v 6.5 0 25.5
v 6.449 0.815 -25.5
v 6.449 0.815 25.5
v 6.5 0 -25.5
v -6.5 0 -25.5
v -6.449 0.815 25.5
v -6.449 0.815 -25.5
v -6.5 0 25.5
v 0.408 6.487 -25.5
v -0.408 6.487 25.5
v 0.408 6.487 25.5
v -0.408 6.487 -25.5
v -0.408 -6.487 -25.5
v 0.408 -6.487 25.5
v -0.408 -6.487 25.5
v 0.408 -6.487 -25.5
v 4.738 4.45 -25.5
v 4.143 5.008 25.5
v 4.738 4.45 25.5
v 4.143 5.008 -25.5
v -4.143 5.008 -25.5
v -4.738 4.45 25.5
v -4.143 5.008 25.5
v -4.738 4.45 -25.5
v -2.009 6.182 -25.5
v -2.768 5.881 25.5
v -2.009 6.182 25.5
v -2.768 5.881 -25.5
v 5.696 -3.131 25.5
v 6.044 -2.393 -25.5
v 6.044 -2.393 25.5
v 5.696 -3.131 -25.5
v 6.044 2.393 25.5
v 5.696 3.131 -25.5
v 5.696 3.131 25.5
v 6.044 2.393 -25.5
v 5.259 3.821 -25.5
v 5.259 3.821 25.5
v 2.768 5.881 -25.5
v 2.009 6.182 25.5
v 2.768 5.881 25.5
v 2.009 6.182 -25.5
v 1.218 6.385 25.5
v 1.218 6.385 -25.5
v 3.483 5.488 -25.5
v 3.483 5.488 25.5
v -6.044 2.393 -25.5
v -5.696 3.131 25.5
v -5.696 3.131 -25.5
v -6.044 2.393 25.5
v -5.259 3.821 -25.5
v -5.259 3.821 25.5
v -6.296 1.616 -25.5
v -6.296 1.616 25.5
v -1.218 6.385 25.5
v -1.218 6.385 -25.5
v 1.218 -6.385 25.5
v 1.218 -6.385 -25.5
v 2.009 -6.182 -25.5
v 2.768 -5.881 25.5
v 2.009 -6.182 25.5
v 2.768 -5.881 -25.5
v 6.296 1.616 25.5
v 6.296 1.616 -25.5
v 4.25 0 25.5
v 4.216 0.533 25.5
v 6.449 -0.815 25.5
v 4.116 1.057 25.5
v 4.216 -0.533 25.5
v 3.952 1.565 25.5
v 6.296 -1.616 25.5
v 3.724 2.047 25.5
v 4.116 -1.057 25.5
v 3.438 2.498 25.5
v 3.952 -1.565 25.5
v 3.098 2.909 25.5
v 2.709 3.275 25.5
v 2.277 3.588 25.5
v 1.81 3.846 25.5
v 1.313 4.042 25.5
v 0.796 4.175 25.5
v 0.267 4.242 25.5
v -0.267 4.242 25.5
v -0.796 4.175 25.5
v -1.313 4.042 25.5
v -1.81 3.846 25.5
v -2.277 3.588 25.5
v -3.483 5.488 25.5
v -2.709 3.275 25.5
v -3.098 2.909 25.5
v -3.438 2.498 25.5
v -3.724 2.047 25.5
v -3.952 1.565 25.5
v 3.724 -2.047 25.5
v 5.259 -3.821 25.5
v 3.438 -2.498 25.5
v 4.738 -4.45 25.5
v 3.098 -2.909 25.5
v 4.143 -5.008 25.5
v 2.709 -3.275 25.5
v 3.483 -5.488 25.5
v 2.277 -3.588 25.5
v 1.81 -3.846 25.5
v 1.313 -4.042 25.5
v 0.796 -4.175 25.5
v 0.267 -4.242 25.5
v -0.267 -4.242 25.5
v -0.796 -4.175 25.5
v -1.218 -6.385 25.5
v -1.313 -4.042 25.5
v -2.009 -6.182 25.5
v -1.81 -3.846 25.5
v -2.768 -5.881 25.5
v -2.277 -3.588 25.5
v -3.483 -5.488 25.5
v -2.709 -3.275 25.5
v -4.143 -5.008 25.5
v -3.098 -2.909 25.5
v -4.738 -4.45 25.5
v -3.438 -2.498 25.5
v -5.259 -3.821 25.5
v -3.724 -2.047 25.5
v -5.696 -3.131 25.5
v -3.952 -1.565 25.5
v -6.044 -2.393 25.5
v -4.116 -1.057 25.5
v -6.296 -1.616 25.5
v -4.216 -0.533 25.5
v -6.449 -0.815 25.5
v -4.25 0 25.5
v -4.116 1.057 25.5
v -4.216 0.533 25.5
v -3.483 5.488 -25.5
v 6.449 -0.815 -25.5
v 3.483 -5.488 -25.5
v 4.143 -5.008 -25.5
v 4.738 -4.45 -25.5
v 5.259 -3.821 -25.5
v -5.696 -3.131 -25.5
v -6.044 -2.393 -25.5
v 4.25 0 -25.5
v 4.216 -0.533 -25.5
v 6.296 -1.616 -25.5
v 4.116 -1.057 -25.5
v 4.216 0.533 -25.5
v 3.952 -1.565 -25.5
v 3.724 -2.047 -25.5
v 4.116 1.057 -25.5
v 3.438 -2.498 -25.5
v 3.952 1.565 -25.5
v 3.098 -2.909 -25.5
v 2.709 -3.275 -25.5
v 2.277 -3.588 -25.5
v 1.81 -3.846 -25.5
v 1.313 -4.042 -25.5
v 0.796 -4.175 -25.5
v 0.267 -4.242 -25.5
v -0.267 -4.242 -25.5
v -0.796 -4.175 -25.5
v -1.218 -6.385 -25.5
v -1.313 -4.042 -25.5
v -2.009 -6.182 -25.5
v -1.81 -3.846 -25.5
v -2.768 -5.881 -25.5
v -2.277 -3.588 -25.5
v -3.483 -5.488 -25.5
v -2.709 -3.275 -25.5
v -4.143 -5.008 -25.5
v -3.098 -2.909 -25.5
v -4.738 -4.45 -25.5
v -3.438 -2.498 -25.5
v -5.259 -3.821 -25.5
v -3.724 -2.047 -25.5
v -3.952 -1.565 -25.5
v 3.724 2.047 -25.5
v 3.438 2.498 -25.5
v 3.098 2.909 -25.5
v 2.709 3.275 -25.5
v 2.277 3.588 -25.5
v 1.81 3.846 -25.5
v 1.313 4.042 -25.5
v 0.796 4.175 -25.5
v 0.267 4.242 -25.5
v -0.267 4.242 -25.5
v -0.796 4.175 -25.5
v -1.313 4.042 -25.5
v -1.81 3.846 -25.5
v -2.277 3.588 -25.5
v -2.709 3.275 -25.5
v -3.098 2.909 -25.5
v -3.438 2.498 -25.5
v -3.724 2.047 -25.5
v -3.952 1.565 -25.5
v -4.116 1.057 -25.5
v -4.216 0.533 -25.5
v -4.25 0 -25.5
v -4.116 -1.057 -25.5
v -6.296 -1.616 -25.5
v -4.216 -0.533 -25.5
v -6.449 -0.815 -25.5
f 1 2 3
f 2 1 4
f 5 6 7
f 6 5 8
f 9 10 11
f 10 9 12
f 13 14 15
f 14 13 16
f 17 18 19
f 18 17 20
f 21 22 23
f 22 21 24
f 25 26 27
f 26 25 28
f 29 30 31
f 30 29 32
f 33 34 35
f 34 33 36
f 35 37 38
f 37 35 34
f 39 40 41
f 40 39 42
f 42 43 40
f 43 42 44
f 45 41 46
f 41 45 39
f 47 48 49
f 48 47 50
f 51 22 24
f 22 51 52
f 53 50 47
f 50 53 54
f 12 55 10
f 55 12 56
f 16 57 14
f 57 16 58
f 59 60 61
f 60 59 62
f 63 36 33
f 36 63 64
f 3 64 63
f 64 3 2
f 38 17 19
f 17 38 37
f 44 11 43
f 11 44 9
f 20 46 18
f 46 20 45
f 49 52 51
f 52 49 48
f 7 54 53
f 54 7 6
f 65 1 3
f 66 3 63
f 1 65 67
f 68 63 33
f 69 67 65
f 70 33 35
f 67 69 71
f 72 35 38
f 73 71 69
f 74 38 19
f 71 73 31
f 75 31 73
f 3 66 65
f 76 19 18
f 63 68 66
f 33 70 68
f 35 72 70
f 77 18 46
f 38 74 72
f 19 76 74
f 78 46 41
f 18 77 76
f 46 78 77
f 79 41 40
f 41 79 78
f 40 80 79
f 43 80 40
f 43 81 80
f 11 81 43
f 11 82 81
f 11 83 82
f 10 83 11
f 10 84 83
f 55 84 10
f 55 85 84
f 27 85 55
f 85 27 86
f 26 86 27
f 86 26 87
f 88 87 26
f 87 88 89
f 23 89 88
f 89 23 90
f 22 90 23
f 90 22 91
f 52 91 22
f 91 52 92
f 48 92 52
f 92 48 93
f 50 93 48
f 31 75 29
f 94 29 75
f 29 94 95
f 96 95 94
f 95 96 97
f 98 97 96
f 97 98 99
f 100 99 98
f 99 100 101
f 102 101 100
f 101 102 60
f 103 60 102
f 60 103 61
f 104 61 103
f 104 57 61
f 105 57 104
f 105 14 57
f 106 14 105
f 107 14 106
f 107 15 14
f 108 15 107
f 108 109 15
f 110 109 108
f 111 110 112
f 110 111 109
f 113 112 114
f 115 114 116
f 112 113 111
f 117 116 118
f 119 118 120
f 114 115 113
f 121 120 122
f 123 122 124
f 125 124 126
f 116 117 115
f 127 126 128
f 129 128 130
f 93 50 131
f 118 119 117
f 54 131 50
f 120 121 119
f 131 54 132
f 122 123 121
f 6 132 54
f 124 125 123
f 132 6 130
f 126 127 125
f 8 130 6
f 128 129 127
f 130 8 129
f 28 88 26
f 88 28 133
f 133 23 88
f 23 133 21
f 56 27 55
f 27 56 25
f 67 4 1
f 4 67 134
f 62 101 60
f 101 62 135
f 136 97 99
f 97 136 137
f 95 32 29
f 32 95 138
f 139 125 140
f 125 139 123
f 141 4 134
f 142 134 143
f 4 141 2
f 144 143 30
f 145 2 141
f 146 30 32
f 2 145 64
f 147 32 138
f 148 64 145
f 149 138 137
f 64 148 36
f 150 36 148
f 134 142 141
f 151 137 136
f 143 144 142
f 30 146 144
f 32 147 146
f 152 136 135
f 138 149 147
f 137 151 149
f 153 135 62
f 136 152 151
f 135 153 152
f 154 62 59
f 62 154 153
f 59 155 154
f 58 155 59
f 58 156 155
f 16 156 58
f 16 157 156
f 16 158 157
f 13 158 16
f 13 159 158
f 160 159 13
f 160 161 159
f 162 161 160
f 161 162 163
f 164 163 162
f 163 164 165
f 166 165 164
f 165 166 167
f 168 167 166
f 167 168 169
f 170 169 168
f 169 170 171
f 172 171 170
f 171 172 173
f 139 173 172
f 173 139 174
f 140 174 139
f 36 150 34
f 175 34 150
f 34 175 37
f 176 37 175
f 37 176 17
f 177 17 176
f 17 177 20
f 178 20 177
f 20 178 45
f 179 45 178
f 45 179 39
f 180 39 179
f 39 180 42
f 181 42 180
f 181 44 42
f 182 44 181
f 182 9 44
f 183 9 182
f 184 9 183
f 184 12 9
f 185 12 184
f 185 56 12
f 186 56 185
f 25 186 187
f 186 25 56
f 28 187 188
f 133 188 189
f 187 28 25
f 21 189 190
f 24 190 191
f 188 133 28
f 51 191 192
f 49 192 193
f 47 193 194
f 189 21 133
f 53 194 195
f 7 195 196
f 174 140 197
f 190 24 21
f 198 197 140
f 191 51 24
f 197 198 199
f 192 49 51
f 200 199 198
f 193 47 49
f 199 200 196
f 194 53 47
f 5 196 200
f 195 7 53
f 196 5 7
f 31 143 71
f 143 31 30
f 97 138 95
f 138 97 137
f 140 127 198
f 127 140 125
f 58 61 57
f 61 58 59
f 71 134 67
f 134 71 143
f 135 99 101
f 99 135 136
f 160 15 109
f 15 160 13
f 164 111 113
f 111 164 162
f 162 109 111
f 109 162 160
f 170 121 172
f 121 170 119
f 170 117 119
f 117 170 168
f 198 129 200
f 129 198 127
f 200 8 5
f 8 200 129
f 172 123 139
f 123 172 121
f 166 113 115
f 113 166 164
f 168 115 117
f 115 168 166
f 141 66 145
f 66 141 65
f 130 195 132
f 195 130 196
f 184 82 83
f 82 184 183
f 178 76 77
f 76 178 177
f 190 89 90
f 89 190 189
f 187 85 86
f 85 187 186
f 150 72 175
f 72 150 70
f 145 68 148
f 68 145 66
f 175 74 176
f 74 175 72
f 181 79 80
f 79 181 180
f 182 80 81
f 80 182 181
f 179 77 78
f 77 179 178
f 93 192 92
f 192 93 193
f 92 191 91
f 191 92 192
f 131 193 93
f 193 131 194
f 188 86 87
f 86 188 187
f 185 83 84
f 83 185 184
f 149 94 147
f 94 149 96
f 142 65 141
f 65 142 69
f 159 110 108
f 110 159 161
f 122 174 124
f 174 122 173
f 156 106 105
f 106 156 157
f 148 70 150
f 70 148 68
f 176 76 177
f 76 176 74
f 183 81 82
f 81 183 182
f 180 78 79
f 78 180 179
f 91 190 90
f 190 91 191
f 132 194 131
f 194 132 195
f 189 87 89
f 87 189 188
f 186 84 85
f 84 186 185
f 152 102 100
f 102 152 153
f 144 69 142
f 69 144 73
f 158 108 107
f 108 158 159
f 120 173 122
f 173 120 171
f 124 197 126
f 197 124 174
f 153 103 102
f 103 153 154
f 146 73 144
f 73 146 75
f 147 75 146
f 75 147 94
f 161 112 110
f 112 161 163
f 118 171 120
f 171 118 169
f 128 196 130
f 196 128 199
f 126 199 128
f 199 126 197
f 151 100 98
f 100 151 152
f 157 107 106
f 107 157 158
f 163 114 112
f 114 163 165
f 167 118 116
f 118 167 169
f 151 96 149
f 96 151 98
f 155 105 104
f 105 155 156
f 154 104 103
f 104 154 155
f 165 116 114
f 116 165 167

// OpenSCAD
$fn = 50;


difference() {
	union() {
		translate(v = [0, 0, -25.5000000000]) {
			cylinder(h = 51, r = 6.5000000000);
		}
	}
	union() {
		translate(v = [0, 0, -100.0000000000]) {
			cylinder(h = 200, r = 4.2500000000);
		}
	}
}
